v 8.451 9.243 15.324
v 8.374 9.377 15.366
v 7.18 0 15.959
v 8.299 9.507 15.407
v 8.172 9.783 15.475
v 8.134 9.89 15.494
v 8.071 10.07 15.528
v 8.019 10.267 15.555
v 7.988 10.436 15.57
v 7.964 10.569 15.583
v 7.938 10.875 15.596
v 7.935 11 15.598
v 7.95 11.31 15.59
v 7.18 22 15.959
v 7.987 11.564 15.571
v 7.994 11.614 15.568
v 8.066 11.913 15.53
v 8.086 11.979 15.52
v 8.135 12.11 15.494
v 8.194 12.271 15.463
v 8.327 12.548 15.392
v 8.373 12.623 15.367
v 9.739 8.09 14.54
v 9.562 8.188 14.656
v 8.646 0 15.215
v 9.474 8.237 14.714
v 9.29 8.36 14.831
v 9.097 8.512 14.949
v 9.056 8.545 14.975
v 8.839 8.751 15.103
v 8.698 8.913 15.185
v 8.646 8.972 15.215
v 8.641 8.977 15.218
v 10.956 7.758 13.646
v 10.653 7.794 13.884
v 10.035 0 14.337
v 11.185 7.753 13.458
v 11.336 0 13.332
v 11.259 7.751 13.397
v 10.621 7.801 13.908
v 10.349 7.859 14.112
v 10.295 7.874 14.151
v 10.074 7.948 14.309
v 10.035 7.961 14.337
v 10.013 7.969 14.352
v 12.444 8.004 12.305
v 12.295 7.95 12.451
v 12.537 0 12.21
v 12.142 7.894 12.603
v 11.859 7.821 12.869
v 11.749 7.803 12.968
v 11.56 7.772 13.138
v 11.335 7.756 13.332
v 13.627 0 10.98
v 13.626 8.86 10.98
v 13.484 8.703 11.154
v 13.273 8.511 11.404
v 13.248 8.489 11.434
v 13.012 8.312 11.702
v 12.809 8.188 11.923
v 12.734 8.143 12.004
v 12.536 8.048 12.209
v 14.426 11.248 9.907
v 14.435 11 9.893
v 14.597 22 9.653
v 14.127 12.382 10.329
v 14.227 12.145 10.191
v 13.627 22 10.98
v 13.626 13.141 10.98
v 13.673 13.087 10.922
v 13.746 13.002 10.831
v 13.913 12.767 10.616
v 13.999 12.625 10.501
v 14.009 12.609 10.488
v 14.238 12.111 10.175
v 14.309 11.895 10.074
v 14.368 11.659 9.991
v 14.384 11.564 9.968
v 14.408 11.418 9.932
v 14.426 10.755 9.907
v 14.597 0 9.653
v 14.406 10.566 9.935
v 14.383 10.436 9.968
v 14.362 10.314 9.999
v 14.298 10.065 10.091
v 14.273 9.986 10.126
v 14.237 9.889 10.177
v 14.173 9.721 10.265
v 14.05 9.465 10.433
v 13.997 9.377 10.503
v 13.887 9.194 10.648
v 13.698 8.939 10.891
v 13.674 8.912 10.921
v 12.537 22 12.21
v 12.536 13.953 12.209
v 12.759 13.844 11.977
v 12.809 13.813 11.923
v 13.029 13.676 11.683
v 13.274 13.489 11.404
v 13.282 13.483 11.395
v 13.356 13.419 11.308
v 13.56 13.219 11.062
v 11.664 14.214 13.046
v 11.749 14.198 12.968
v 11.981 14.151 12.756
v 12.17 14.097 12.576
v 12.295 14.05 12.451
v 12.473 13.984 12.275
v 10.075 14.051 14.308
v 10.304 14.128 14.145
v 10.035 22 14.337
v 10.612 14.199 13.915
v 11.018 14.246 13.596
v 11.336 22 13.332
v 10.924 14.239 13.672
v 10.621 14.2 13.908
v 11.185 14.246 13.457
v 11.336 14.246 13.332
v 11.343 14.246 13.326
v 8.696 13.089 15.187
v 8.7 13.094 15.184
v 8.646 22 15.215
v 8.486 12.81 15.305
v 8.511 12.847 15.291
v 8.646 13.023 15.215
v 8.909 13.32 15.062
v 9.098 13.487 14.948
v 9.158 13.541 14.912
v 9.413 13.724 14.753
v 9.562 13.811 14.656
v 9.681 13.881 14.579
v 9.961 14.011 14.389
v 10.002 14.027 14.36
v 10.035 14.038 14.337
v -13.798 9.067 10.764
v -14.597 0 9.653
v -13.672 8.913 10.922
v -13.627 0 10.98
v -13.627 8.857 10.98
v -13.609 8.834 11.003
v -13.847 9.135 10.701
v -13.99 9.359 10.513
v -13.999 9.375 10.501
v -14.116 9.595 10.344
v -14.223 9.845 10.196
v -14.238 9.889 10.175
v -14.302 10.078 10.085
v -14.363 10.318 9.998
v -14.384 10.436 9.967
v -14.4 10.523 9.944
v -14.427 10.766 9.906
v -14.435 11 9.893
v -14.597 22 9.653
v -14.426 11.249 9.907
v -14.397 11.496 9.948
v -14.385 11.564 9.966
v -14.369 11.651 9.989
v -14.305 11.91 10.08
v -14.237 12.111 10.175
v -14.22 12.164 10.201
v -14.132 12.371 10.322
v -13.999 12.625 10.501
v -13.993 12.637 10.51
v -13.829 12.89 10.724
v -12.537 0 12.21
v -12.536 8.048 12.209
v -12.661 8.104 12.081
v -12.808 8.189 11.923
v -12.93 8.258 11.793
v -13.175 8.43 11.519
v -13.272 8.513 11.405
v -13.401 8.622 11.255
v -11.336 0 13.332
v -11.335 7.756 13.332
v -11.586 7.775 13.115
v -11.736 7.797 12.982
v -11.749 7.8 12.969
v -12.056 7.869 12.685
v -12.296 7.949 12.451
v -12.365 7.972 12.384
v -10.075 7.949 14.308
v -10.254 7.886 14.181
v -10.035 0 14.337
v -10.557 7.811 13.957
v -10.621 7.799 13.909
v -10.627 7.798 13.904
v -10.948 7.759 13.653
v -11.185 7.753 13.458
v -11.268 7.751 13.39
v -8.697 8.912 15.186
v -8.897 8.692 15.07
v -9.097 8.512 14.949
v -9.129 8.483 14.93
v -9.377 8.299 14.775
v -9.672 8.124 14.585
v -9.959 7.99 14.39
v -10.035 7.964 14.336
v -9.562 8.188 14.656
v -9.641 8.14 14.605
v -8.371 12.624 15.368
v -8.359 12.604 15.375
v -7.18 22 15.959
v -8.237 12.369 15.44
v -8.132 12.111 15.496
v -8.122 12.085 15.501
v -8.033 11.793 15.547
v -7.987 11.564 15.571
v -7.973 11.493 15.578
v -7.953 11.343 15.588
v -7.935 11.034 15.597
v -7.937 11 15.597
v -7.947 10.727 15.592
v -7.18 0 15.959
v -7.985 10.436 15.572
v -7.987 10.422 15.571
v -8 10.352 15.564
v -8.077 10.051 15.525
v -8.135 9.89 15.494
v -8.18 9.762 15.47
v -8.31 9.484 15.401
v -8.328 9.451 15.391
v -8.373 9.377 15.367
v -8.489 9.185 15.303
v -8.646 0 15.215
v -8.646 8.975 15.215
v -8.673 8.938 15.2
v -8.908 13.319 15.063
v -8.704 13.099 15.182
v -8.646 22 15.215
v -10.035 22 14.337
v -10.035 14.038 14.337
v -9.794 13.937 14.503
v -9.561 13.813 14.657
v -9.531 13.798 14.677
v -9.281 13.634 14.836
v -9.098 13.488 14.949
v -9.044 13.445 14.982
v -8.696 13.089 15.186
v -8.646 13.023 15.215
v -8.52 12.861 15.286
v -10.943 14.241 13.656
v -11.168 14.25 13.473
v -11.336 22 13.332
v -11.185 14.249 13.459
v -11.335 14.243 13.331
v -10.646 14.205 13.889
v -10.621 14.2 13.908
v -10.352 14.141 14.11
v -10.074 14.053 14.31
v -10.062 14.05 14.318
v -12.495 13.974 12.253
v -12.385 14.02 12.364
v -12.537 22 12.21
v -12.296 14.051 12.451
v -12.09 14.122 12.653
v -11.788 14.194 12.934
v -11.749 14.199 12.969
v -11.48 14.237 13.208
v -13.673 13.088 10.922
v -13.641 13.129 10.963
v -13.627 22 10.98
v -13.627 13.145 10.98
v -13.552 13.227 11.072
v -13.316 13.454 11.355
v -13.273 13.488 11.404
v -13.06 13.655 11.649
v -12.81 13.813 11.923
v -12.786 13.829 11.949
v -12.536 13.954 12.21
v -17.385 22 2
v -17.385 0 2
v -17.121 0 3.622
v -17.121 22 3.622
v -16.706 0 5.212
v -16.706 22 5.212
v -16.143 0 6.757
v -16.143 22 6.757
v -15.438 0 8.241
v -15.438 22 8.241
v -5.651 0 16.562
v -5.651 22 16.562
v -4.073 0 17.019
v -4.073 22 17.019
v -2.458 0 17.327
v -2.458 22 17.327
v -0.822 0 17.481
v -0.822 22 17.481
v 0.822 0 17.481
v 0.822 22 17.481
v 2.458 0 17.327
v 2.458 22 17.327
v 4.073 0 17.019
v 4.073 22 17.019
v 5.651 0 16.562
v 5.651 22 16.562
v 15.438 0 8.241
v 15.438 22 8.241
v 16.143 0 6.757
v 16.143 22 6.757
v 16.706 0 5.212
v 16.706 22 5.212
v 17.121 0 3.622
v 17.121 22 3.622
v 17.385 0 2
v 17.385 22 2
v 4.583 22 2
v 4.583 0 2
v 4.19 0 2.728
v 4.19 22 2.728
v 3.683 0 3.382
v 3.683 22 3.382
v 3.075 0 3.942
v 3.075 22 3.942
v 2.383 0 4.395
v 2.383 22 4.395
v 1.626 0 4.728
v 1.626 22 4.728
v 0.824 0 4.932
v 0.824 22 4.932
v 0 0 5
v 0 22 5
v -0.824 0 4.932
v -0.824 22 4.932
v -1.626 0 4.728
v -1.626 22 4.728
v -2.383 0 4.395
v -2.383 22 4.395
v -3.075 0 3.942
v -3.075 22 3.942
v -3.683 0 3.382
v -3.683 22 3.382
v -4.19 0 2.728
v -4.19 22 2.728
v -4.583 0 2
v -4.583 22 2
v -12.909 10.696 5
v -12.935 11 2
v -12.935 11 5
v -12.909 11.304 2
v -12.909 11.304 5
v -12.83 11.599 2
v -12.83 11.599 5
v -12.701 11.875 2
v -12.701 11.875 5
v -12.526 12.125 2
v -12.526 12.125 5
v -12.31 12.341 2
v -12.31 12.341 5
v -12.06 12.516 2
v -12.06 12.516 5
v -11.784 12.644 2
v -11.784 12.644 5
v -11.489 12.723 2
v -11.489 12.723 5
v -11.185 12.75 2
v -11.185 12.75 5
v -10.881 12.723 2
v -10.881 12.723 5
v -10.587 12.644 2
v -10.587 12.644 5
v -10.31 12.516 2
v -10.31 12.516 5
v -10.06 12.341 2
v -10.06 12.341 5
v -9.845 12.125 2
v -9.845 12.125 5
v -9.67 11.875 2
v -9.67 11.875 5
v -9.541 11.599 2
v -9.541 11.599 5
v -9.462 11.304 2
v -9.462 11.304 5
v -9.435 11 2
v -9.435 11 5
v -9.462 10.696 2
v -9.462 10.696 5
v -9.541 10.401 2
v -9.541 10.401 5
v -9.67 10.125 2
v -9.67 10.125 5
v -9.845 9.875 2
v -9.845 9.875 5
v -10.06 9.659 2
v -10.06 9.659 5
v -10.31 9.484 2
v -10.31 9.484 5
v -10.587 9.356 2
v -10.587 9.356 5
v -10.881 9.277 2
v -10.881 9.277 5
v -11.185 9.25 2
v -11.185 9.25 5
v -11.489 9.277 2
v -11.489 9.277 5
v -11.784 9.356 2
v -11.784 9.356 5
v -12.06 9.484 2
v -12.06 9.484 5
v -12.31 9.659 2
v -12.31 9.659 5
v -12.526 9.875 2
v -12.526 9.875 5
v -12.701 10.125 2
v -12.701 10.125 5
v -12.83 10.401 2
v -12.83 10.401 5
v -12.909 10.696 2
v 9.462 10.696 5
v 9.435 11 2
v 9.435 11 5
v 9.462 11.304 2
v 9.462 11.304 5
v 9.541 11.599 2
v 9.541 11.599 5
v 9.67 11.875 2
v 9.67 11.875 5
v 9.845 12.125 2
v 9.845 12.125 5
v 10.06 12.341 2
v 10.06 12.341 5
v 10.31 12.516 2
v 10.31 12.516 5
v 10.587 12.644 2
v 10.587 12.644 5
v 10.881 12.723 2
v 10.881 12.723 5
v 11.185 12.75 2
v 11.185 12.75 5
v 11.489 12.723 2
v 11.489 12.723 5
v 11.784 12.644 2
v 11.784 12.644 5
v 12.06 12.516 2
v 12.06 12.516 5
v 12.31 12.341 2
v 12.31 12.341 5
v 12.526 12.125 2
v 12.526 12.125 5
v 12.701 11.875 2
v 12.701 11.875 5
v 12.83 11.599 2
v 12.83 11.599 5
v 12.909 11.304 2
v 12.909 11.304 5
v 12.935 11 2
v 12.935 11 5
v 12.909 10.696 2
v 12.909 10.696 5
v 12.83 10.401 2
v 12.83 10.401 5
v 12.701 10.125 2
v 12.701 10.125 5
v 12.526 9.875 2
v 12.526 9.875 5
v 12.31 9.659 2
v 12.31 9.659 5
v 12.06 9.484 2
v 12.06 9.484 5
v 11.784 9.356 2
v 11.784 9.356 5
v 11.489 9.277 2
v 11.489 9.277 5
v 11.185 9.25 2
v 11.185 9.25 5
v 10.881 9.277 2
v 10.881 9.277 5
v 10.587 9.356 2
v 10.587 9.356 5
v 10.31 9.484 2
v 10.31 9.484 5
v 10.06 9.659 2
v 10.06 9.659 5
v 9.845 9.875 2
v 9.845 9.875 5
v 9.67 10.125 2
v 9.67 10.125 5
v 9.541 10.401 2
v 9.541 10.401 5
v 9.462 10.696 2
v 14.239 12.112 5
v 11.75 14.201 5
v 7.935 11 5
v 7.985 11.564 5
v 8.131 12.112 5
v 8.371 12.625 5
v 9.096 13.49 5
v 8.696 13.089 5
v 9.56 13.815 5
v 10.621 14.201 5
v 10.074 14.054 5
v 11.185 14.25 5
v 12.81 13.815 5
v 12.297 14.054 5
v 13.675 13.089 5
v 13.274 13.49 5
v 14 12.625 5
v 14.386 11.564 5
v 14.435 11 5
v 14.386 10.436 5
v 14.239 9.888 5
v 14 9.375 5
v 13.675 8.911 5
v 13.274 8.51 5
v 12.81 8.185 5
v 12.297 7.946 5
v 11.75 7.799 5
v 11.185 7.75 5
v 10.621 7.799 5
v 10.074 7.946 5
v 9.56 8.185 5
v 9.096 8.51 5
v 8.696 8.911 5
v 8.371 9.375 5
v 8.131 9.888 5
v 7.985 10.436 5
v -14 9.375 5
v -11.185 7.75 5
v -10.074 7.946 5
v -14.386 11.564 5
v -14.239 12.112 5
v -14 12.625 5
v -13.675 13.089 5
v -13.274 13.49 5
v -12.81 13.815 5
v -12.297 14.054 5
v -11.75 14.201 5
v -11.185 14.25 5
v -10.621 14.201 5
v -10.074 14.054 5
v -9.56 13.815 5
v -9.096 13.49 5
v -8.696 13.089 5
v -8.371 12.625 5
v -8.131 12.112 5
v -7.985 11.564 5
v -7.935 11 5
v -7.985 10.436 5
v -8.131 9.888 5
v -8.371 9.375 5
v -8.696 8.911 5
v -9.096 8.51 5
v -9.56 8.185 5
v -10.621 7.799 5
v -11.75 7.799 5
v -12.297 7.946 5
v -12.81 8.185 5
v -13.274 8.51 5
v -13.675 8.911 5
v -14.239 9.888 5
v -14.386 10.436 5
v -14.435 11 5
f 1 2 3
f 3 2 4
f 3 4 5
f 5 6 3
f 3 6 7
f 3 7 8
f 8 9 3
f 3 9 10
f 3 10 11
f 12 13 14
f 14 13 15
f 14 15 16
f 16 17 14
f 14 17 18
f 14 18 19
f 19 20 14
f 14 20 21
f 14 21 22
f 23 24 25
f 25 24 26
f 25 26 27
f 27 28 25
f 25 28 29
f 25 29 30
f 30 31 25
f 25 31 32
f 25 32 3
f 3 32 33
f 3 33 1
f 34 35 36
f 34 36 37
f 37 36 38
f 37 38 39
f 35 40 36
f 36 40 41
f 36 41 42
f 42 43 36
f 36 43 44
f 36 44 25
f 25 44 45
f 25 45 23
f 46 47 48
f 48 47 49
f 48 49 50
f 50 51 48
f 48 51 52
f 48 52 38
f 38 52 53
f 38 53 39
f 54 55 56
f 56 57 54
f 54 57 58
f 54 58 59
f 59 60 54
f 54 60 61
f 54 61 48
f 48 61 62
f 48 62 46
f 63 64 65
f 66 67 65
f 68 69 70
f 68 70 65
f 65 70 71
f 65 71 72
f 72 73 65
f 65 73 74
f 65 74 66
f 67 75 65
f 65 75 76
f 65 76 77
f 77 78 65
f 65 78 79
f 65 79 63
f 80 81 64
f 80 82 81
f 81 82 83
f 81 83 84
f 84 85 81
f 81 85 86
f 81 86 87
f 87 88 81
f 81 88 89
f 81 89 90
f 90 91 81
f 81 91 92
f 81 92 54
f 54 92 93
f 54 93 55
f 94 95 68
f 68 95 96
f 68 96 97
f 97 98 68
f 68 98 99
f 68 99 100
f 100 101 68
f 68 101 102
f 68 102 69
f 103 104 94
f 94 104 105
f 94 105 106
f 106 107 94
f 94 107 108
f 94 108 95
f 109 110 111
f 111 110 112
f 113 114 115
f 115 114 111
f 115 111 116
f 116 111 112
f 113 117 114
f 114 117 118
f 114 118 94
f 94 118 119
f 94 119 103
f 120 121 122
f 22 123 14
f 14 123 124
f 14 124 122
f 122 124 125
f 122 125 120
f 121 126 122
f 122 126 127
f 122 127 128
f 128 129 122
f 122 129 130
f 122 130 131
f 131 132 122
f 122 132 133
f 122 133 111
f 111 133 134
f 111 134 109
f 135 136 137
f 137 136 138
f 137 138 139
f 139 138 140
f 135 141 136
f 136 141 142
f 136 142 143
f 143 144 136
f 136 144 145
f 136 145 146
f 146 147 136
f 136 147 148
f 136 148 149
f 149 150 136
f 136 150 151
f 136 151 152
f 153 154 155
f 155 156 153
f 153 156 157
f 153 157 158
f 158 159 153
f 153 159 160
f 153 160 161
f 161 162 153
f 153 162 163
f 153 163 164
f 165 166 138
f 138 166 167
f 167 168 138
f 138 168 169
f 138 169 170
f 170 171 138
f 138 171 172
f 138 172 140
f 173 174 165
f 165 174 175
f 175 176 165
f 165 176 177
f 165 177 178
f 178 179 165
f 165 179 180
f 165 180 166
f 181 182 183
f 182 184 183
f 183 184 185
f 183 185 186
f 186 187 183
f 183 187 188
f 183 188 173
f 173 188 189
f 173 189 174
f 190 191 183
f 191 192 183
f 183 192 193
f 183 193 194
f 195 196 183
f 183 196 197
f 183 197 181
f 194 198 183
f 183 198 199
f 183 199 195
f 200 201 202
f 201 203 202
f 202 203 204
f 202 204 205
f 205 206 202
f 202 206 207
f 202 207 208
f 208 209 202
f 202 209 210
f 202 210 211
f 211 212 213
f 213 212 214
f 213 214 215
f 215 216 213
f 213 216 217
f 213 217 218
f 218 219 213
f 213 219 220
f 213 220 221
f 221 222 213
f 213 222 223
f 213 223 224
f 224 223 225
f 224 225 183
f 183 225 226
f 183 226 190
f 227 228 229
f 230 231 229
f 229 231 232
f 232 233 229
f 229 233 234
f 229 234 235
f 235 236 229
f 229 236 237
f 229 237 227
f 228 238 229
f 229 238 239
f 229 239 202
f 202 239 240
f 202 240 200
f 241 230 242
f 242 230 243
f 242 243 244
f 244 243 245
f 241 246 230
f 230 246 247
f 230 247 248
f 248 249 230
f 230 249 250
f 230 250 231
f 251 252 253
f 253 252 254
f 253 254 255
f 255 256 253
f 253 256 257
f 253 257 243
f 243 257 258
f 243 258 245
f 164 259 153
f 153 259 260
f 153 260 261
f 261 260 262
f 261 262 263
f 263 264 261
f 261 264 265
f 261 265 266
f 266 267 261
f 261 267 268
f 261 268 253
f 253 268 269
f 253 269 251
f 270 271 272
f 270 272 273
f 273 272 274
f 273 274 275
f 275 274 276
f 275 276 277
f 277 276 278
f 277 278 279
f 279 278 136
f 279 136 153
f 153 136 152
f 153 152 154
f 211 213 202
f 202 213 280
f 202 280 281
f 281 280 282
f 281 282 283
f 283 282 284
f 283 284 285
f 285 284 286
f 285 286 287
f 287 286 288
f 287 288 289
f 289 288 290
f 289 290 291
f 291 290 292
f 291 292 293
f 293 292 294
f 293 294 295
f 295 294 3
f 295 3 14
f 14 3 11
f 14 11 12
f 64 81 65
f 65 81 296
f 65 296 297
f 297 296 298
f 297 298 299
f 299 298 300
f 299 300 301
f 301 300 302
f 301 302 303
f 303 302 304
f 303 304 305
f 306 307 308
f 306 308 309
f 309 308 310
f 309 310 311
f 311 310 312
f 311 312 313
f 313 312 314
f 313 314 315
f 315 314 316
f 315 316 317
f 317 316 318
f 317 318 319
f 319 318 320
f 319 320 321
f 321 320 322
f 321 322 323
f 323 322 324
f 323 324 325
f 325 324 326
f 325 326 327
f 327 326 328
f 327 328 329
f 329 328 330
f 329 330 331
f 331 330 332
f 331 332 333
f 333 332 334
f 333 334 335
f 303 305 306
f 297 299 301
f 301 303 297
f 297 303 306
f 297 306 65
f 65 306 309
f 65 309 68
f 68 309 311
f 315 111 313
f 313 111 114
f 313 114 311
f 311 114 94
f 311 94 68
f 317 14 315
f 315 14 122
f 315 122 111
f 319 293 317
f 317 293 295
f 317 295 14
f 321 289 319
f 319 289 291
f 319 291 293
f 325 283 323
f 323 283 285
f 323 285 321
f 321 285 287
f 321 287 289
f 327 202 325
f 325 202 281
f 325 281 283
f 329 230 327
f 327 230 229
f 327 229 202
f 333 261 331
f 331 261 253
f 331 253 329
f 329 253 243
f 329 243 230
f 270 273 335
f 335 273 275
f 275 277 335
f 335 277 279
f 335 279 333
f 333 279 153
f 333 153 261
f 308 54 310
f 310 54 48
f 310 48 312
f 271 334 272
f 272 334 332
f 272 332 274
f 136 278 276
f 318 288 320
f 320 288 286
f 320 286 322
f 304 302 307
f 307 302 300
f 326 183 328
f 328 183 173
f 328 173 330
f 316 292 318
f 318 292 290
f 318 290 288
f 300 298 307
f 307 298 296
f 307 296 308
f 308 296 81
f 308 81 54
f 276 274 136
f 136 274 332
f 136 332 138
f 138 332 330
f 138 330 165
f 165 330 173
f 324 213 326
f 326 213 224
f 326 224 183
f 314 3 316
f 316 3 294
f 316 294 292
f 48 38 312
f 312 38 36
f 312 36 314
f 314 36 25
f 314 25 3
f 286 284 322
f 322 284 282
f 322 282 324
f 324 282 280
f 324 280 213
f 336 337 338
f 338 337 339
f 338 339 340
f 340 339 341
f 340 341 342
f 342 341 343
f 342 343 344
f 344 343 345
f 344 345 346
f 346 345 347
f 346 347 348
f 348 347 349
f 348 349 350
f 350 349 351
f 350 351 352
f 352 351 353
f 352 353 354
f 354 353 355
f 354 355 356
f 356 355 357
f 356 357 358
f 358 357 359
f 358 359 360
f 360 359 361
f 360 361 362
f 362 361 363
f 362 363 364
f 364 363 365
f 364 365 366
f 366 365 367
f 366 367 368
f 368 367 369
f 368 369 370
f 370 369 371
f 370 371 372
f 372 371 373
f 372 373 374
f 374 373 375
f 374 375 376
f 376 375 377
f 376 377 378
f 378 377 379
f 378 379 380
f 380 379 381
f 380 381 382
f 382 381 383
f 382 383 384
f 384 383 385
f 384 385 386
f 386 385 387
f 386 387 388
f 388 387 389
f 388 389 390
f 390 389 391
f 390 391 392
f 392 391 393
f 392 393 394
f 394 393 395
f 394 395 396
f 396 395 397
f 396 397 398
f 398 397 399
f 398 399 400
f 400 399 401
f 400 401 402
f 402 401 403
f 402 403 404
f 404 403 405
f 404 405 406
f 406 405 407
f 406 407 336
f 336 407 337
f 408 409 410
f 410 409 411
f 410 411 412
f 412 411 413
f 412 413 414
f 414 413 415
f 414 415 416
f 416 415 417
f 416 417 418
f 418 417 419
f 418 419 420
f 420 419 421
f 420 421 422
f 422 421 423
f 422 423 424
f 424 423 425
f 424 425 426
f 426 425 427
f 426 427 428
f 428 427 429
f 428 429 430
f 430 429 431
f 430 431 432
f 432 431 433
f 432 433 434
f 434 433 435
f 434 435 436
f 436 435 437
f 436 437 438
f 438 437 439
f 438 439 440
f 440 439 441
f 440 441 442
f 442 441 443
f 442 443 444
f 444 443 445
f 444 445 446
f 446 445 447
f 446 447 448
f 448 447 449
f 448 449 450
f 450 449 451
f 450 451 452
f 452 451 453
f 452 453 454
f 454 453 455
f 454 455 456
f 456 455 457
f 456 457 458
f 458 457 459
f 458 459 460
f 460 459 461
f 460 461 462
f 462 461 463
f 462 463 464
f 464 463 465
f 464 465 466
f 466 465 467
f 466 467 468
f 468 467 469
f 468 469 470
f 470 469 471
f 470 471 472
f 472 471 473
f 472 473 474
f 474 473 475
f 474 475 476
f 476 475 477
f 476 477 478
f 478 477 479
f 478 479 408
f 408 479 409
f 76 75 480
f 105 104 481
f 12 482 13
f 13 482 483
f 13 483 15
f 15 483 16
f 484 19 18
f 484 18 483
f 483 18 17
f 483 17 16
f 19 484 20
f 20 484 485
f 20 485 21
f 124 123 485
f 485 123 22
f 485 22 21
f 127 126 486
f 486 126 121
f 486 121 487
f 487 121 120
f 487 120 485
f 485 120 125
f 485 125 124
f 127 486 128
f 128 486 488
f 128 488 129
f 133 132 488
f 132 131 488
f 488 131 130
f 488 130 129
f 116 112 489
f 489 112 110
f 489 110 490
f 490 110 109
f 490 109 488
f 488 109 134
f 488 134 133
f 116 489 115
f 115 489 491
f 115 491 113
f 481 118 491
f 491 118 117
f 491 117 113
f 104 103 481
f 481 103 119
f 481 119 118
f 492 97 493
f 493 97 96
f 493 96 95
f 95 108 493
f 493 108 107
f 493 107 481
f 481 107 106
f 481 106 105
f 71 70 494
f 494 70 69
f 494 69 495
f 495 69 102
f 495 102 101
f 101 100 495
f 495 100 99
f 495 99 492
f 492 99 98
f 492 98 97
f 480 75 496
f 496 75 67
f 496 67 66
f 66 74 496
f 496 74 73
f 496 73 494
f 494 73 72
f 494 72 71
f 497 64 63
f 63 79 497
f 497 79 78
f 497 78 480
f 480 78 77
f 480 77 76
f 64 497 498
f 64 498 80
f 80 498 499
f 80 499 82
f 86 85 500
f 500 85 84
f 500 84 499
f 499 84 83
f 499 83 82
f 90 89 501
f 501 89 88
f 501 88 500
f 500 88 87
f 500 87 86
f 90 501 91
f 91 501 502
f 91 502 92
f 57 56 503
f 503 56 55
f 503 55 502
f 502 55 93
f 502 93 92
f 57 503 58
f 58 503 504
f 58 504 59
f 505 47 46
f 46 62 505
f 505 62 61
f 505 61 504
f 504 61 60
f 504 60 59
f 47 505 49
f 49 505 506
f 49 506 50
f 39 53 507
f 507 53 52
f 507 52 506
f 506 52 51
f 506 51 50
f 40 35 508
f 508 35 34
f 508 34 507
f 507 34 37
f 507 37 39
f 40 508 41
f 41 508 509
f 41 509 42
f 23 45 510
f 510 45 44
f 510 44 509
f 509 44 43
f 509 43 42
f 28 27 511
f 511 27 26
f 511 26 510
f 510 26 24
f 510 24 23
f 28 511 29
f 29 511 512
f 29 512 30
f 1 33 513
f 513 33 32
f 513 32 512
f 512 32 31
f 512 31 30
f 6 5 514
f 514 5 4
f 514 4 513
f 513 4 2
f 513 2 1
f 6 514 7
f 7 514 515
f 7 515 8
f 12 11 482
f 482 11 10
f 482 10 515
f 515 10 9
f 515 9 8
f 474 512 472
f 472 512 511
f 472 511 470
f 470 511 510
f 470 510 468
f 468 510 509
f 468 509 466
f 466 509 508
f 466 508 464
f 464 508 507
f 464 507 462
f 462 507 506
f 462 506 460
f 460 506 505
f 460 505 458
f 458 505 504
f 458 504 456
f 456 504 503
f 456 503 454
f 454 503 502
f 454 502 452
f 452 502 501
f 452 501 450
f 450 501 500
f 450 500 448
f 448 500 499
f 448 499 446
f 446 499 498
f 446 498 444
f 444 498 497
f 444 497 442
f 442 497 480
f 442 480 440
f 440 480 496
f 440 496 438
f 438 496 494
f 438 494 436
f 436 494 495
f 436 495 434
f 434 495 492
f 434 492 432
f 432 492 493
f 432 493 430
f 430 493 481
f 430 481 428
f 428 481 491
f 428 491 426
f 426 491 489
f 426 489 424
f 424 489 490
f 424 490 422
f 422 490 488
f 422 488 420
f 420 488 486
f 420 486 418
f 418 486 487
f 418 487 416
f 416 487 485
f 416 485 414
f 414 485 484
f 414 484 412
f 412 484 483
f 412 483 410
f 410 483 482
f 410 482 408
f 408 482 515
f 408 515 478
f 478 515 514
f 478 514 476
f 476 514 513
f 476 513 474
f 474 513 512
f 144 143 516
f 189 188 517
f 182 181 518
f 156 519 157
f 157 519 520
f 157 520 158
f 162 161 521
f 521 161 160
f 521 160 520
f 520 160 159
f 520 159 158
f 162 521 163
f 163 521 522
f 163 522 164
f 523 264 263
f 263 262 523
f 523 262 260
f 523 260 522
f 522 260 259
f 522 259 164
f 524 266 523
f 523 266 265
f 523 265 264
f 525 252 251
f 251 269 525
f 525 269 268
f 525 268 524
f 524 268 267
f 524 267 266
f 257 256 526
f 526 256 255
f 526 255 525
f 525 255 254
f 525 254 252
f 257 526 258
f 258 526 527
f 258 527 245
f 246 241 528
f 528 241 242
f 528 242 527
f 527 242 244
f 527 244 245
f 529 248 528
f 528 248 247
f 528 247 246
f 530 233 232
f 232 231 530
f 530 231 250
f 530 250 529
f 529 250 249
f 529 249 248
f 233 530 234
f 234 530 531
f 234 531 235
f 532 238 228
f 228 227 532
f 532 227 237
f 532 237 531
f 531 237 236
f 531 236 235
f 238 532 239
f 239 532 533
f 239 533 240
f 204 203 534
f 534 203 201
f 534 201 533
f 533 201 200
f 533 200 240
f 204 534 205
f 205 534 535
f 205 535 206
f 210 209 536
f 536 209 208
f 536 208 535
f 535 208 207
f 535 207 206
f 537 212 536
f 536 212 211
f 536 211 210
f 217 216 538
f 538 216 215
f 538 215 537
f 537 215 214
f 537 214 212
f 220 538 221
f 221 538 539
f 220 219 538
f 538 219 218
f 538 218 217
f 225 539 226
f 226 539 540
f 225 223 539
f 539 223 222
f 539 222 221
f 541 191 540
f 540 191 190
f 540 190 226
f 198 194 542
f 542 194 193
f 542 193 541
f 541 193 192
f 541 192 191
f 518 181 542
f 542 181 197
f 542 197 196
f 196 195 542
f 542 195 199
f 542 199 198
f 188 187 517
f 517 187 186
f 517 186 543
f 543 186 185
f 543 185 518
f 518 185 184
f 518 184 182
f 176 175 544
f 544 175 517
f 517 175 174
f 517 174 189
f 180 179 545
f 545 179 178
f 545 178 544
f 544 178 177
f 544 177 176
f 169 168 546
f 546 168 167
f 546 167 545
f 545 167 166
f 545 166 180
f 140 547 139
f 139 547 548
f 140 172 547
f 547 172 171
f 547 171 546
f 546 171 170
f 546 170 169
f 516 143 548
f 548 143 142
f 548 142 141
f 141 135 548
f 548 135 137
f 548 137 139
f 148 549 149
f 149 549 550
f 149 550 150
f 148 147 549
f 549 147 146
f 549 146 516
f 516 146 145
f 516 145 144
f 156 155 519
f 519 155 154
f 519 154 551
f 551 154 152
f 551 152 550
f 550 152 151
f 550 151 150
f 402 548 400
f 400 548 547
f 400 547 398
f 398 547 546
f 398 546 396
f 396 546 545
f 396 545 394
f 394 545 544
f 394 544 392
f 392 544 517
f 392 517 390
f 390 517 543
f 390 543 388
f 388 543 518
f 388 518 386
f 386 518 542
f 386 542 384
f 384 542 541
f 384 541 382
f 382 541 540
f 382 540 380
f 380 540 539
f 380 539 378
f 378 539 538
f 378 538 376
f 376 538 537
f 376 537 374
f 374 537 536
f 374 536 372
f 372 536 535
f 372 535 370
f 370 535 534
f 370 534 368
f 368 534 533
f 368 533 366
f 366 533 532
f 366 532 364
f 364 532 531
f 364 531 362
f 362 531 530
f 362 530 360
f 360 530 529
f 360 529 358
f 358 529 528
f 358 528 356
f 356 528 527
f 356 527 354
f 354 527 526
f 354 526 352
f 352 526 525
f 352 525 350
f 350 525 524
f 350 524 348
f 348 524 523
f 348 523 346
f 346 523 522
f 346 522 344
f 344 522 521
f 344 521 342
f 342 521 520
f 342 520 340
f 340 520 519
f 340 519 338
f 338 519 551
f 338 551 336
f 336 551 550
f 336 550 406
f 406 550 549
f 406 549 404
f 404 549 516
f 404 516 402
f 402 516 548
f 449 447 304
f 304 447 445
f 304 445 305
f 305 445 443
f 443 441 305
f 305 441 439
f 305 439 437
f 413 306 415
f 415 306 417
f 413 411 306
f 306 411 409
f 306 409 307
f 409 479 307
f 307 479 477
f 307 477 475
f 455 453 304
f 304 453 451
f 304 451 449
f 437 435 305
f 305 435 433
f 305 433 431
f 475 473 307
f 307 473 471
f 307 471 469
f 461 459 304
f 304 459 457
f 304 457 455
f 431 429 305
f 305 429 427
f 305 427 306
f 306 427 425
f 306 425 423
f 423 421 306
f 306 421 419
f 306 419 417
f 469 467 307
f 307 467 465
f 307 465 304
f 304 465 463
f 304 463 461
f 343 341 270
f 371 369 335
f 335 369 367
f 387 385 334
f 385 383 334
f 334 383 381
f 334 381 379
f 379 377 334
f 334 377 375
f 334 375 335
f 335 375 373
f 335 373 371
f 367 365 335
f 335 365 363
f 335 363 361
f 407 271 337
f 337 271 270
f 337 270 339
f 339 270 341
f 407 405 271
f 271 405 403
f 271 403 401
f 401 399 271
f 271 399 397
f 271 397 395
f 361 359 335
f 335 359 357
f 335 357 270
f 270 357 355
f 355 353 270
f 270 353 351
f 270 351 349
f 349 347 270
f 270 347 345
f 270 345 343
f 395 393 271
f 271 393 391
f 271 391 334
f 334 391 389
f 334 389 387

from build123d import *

# Parameters (mm, degrees)
BOSS_EXTRUDE1_DEPTH = 22
SKETCH3_R           = 1.75
CUT_EXTRUDE1_DEPTH  = 22
SKETCH4_R           = 3.25
CUT_EXTRUDE2_DEPTH  = 22
SKETCH5_W           = 35.231138993
SKETCH5_H           = 1
CUT_EXTRUDE3_DEPTH  = 22


with BuildPart() as part:
    # Sketch2 → Boss-Extrude1 (new body)
    with BuildSketch(Plane(origin=(0, 0, 0), x_dir=(1, 0, 0), z_dir=(0, 1, 0))):
        with BuildLine():
            Line((4.898979486, -1), (17.47140521, -1))
            ThreePointArc((17.47140521, -1), (0, -17.5), (-17.47140521, -1))
            Line((-17.47140521, -1), (-4.898979486, -1))
            ThreePointArc((-4.898979486, -1), (0, -5), (4.898979486, -1))
        make_face()
    extrude(amount=BOSS_EXTRUDE1_DEPTH)

    # Sketch3 → Cut-Extrude1 (cut)
    with BuildSketch(Plane(origin=(0, 0, 1), x_dir=(-1, 0, 0), z_dir=(0, 0, -1))):
        with Locations((11.185192348, 11)):
            Circle(SKETCH3_R)
        with Locations((-11.185192348, 11)):
            Circle(SKETCH3_R)
    extrude(amount=-CUT_EXTRUDE1_DEPTH, mode=Mode.SUBTRACT)

    # Sketch4 → Cut-Extrude2 (cut)
    with BuildSketch(Plane(origin=(0, 0, 5), x_dir=(-1, 0, 0), z_dir=(0, 0, -1))):
        with Locations((-11.185192348, 11)):
            Circle(SKETCH4_R)
        with Locations((11.185192348, 11)):
            Circle(SKETCH4_R)
    extrude(amount=-CUT_EXTRUDE2_DEPTH, mode=Mode.SUBTRACT)

    # Sketch5 → Cut-Extrude3 (cut)
    with BuildSketch(Plane(origin=(0, 22, 0), x_dir=(1, 0, 0), z_dir=(0, 1, 0))):
        with Locations((0.144164287, -1.5)):
            Rectangle(SKETCH5_W, SKETCH5_H)
    extrude(amount=-CUT_EXTRUDE3_DEPTH, mode=Mode.SUBTRACT)


solid = part.part
